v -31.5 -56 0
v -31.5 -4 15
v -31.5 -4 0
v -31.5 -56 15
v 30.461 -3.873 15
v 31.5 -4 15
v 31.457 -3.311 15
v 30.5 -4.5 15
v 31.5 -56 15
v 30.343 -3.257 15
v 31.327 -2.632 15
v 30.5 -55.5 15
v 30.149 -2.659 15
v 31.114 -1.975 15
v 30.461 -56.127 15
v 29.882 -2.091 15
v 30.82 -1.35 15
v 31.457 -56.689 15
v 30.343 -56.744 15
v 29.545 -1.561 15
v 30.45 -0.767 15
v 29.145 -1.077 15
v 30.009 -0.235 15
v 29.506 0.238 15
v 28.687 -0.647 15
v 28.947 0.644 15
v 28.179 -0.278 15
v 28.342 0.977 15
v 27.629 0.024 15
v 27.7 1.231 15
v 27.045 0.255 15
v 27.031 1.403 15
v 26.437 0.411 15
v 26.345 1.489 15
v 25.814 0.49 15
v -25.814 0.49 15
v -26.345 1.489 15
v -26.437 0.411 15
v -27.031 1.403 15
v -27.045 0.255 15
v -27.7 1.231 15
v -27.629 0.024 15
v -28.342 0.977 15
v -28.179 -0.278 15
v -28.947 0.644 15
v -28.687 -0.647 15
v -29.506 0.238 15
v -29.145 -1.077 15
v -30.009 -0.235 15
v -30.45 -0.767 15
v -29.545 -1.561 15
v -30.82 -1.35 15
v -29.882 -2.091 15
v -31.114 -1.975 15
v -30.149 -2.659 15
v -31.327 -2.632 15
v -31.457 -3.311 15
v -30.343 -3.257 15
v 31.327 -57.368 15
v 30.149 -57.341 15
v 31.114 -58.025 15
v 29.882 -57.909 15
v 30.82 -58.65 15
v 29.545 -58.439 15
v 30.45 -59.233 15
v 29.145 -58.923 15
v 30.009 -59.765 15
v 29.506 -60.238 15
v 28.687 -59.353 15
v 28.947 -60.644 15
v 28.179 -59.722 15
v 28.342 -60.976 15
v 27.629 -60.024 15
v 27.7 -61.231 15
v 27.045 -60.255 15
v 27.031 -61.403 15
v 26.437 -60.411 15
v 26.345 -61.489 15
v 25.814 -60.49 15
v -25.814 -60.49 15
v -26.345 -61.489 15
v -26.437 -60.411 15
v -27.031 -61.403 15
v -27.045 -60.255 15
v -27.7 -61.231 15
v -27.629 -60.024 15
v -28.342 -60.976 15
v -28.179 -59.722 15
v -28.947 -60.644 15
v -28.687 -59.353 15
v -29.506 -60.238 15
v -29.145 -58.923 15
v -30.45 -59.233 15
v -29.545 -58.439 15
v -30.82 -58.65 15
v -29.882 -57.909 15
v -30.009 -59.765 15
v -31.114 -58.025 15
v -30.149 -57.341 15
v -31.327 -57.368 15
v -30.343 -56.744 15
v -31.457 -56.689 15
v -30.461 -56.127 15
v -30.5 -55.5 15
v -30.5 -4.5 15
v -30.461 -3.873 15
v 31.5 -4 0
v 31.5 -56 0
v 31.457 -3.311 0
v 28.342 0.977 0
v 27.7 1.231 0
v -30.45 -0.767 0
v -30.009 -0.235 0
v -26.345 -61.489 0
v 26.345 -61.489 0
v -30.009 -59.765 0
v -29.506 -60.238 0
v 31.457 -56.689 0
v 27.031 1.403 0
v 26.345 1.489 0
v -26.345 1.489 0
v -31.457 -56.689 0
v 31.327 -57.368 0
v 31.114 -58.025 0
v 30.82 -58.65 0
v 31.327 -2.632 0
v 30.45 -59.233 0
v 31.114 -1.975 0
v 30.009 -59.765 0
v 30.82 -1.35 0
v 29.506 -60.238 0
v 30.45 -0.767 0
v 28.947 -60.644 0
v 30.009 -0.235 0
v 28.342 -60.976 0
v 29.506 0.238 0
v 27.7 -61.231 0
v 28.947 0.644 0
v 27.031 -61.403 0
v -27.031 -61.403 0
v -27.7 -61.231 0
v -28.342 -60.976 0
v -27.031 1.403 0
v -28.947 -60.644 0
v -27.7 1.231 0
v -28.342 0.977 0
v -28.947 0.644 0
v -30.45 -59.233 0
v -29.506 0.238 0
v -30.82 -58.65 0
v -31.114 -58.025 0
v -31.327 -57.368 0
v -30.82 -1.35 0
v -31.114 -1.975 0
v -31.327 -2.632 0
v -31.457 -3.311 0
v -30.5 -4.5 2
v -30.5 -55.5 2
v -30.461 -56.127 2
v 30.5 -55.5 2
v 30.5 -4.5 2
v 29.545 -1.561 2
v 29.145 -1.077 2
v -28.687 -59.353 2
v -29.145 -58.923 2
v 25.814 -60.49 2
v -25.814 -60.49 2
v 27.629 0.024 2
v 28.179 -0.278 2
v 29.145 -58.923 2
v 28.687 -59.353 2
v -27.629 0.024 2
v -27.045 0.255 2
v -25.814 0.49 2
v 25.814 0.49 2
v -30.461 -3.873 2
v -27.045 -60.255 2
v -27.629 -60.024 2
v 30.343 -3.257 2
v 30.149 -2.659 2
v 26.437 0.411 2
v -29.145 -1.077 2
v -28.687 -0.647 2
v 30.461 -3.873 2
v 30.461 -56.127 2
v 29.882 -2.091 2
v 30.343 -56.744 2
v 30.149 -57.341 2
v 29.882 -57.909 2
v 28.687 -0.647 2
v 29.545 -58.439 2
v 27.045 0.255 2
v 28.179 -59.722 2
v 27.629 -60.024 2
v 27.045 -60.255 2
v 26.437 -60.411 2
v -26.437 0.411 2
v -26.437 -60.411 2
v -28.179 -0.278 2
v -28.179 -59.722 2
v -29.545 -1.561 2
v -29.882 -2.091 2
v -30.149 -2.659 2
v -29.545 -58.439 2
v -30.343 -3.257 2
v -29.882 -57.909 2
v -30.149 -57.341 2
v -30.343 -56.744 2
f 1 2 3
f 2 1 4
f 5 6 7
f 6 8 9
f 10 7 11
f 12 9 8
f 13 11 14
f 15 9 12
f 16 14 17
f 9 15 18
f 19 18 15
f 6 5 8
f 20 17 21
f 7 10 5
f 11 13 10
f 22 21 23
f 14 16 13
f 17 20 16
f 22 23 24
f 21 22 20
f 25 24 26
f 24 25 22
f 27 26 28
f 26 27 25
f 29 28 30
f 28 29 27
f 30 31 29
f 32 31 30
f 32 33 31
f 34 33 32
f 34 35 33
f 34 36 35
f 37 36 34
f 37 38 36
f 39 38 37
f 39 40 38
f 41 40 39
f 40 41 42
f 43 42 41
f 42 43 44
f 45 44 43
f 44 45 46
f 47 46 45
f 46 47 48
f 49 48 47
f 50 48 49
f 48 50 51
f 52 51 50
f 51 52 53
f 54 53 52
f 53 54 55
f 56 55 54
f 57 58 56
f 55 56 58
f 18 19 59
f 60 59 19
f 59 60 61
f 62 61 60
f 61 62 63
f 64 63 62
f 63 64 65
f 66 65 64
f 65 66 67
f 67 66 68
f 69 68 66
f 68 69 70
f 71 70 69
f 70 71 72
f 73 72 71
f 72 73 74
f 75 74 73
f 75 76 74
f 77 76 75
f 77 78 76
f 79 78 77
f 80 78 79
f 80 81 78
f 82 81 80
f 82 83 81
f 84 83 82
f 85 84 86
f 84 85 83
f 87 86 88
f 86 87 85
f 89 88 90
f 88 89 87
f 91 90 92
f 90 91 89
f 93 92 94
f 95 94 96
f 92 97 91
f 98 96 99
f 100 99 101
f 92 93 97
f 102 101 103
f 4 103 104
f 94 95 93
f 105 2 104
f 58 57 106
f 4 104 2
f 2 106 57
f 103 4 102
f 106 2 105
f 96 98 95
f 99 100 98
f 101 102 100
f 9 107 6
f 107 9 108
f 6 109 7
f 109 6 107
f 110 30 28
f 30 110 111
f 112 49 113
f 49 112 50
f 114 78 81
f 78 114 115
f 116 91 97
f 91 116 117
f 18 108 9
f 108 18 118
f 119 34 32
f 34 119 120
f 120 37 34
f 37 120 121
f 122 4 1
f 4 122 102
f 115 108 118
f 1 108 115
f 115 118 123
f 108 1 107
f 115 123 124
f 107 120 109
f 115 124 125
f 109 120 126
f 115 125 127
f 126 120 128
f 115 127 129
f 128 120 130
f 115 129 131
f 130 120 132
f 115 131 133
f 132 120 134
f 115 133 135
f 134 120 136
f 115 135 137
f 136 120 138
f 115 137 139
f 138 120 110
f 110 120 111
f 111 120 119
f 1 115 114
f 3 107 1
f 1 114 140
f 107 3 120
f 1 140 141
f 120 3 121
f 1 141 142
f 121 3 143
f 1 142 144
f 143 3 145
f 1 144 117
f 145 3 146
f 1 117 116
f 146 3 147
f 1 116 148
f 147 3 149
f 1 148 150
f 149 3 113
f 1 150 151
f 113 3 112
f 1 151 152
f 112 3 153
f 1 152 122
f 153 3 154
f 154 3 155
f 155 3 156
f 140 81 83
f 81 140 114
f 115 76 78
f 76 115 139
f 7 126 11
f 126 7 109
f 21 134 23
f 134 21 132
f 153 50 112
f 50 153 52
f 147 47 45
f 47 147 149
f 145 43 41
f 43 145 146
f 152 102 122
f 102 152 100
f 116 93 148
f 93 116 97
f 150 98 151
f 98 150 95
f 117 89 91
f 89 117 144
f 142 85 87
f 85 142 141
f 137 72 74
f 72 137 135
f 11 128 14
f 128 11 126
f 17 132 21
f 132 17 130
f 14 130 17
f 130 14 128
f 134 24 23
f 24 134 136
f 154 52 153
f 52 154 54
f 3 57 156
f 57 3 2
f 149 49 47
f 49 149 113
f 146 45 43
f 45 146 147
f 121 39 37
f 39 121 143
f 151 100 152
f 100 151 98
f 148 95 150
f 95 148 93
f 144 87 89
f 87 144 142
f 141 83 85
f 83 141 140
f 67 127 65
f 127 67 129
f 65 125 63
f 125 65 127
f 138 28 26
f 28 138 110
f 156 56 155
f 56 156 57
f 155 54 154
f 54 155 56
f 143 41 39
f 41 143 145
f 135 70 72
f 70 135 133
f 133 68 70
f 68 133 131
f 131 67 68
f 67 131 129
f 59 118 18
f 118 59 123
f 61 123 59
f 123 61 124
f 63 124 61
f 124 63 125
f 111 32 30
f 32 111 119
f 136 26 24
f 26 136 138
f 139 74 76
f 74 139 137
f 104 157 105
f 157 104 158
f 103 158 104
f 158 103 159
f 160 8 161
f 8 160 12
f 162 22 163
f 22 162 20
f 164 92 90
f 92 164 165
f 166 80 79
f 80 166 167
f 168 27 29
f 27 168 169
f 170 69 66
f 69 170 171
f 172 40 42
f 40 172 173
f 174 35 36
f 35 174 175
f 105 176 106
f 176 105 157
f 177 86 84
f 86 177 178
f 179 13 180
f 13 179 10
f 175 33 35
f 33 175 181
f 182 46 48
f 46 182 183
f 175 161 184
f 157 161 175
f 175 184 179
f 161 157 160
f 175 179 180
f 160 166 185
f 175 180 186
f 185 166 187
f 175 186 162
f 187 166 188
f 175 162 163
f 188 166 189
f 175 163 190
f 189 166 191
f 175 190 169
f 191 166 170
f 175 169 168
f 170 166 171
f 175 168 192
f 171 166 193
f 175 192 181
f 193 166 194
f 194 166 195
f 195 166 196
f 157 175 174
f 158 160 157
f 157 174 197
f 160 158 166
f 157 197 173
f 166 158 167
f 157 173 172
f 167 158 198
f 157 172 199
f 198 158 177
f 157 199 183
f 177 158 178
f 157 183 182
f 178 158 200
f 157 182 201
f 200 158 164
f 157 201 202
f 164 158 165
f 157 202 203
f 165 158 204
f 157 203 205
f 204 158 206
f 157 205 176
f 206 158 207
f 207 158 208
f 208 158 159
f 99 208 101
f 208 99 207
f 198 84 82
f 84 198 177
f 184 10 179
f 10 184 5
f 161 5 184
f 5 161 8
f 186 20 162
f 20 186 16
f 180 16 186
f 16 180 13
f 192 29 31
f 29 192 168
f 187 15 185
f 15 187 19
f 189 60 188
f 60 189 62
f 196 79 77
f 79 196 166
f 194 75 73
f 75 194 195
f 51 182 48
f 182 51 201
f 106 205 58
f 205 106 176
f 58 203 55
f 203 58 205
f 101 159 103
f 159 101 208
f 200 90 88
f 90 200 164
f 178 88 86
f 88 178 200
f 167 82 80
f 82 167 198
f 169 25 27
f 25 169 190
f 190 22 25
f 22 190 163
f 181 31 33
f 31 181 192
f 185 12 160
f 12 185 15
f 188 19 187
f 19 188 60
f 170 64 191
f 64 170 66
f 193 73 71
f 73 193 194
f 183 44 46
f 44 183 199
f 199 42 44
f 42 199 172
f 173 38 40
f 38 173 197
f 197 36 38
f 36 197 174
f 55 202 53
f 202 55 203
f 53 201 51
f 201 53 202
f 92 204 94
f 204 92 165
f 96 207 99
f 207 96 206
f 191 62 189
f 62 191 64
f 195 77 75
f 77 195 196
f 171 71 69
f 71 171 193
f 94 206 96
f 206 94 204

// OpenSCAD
$fn = 50;


difference() {
	union() {
		translate(v = [0, -30.0000000000, 0]) {
			hull() {
				translate(v = [-26.0000000000, 26.0000000000, 0]) {
					cylinder(h = 15, r = 5.5000000000);
				}
				translate(v = [26.0000000000, 26.0000000000, 0]) {
					cylinder(h = 15, r = 5.5000000000);
				}
				translate(v = [-26.0000000000, -26.0000000000, 0]) {
					cylinder(h = 15, r = 5.5000000000);
				}
				translate(v = [26.0000000000, -26.0000000000, 0]) {
					cylinder(h = 15, r = 5.5000000000);
				}
			}
		}
	}
	union() {
		translate(v = [0, -30.0000000000, 2]) {
			hull() {
				translate(v = [-25.5000000000, 25.5000000000, 0]) {
					cylinder(h = 30, r = 5);
				}
				translate(v = [25.5000000000, 25.5000000000, 0]) {
					cylinder(h = 30, r = 5);
				}
				translate(v = [-25.5000000000, -25.5000000000, 0]) {
					cylinder(h = 30, r = 5);
				}
				translate(v = [25.5000000000, -25.5000000000, 0]) {
					cylinder(h = 30, r = 5);
				}
			}
		}
	}
}
